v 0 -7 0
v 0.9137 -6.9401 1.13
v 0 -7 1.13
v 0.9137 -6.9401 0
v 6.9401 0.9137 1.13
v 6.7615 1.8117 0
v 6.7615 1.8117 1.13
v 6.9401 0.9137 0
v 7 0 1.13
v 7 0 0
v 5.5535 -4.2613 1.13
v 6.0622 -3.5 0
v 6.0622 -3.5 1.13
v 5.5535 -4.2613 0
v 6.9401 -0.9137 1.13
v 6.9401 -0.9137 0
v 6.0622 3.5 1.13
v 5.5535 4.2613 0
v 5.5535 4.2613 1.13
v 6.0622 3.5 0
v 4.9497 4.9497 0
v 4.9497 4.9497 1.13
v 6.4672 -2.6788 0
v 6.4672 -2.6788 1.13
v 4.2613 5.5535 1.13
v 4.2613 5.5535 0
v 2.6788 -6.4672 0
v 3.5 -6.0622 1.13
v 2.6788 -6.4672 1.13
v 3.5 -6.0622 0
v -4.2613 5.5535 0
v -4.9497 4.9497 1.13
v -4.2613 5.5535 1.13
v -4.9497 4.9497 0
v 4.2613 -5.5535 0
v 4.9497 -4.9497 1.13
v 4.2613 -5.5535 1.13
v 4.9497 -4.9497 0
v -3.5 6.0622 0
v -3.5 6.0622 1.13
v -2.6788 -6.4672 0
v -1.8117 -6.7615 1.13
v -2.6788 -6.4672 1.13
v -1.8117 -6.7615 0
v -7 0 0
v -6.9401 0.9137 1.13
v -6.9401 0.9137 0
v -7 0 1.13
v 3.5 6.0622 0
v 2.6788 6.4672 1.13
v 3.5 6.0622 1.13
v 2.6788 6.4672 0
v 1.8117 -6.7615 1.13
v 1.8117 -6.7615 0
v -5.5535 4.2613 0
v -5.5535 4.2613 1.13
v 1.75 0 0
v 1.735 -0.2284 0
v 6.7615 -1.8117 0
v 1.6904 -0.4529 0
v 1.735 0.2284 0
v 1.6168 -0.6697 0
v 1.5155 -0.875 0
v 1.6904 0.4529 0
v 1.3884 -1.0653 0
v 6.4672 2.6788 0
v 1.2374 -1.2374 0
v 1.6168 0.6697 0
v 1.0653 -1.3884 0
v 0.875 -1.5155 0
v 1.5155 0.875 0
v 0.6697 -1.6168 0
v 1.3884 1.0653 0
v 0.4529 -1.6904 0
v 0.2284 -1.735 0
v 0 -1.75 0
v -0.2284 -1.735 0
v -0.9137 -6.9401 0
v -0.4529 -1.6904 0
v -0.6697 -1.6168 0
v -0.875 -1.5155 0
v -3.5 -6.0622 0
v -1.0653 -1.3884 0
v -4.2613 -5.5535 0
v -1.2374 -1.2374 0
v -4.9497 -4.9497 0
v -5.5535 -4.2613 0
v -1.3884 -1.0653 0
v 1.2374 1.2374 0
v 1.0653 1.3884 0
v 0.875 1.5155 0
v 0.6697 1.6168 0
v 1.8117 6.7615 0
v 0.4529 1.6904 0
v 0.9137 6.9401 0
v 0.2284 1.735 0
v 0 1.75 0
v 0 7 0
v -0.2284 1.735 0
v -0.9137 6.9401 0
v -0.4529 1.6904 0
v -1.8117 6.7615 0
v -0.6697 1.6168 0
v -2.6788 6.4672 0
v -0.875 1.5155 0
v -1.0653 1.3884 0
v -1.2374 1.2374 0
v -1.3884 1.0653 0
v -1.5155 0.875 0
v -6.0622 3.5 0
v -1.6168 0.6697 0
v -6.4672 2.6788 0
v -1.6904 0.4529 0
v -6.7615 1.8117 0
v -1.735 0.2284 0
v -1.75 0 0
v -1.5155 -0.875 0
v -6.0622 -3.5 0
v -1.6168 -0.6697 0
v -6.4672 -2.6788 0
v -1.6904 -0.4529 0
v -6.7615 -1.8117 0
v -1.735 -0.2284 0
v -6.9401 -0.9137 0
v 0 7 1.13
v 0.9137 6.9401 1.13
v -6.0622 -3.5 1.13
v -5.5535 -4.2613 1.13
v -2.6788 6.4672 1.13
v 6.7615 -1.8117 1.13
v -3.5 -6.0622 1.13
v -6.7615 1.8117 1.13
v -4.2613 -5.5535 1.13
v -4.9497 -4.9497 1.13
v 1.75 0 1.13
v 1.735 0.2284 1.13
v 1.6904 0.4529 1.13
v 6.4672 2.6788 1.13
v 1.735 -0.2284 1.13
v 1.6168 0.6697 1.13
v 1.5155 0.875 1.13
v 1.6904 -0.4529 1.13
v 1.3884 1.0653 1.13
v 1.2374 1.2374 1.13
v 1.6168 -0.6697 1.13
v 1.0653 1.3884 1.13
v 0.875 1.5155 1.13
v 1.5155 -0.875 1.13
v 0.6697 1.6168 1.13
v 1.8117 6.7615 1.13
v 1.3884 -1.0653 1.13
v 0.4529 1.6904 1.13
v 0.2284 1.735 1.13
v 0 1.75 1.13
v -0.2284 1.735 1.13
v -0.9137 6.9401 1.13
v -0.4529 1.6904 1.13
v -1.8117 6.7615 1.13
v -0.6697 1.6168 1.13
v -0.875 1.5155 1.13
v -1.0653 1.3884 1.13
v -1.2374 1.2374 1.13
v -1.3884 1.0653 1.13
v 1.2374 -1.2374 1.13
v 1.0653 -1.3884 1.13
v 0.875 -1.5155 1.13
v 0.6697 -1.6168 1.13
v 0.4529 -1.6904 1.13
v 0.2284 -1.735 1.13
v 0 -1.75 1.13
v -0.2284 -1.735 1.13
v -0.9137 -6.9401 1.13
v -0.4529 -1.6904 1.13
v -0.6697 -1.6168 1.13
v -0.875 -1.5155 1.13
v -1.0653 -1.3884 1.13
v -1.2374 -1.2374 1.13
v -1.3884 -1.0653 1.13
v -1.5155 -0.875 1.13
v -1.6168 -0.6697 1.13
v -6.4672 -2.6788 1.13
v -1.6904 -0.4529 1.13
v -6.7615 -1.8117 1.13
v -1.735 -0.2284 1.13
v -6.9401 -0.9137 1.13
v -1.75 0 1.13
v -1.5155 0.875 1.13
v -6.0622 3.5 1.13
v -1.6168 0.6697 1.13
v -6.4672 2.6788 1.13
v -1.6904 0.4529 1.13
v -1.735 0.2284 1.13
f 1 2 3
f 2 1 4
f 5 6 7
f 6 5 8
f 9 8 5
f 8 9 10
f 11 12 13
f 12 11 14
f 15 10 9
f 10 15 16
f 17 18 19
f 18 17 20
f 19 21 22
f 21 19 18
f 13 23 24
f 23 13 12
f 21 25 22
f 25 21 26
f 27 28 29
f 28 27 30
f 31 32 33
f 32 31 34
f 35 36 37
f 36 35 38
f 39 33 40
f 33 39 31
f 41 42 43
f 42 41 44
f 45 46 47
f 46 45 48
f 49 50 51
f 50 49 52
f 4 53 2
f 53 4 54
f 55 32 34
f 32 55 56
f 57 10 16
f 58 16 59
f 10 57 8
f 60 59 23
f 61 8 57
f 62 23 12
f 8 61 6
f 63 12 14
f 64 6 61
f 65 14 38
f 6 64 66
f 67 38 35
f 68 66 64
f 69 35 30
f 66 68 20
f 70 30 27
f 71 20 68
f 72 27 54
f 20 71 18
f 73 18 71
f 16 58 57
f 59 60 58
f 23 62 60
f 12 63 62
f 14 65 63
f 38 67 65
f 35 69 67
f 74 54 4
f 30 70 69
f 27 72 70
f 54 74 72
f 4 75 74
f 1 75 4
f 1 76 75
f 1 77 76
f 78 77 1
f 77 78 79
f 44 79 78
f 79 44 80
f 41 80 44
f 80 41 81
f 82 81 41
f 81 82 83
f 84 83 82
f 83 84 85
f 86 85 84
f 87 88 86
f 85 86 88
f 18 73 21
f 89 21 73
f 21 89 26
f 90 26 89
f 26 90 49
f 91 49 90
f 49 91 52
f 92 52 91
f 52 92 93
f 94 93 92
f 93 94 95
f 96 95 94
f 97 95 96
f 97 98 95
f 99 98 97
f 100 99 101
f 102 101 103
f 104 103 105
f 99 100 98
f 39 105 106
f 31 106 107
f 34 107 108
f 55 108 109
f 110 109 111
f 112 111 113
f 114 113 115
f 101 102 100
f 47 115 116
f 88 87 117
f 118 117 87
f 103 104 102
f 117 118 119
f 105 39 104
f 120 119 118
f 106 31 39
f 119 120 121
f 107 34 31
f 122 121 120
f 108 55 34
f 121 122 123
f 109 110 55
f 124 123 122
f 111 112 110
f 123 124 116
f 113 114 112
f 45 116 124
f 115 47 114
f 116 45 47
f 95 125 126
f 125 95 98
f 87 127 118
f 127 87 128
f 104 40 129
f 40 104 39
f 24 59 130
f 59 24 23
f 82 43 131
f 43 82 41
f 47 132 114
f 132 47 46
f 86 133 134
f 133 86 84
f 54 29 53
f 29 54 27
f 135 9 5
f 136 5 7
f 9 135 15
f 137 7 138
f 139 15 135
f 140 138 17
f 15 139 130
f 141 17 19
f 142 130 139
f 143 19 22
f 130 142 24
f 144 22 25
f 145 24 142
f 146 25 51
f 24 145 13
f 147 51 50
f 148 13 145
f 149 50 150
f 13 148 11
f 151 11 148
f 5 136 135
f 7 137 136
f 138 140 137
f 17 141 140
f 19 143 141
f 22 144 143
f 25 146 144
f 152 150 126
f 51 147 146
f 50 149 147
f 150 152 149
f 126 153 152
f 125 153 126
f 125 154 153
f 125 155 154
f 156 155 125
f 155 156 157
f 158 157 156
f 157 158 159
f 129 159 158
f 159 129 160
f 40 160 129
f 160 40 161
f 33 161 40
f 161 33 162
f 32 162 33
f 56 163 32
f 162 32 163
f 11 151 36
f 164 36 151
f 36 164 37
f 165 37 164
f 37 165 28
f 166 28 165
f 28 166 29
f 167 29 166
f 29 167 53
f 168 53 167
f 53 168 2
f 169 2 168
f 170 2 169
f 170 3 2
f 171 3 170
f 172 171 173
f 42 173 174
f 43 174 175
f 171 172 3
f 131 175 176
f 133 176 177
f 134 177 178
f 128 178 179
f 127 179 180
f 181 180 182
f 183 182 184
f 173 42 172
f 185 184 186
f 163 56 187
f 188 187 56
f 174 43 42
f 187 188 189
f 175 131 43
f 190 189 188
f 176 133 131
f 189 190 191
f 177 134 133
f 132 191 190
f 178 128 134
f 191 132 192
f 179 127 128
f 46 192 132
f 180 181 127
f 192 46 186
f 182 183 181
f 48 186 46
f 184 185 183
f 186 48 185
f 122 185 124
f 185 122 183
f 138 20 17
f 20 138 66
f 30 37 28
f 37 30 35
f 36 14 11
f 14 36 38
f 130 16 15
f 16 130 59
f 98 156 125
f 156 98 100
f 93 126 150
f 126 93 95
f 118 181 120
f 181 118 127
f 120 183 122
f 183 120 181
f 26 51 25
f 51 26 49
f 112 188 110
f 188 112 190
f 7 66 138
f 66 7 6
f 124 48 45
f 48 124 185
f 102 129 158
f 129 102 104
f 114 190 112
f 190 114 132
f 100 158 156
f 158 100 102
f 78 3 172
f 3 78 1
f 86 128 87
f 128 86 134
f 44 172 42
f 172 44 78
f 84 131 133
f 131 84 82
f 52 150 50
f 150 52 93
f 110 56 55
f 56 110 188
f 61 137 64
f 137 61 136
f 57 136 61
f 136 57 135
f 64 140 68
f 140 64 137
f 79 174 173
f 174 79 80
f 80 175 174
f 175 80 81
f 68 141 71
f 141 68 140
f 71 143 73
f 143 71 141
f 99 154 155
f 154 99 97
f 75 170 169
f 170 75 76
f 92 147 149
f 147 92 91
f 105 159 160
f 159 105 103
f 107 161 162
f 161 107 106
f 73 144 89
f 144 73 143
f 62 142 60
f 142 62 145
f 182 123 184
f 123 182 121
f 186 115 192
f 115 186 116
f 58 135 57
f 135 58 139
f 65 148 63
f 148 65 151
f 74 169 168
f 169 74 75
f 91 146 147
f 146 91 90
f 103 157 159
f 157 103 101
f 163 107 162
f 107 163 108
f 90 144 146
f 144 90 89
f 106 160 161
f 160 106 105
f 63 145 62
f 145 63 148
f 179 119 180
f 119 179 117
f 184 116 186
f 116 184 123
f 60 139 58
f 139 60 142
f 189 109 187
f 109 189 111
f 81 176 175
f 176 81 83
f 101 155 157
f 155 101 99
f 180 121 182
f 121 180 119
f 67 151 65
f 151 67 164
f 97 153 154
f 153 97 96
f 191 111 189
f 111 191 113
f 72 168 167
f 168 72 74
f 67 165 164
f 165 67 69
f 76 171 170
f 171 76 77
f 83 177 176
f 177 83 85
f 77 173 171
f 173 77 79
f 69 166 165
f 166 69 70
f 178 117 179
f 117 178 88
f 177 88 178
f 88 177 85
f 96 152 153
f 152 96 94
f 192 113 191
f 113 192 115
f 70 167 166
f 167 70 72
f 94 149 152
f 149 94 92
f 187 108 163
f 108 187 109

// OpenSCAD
// file: parameters.scad
// =============================================================================
// Gen-AH Dual-rotor copper-centroid hypermicro AFPM — WOUND-AWARE (HARD GATE)
// PRIMARY challenger vs Gen-AE. Magnets @ R=41 over copper centroid + 180 t + m2m 4.96.
// =============================================================================

// --- Wire / wind budget (26 AWG, ~1 lb spool ≈ 390 m bare-equiv) --------------
wire_awg            = 26;
wire_od             = 0.45;     // insulated OD mm
turns               = 180;      // +10 vs Gen-AE 170
fill                = 0.70;
layers_per_face     = 2;        // axial layers proud of EACH flange
wind_build_axial    = layers_per_face * wire_od * fill;   // 0.63 mm
wind_build_radial   = 3 * wire_od * fill;                 // 0.945 mm

// --- Pancake former (bare STL) -----------------------------------------------
coil_id_r           = 16.5;     // copper-centroid window vs AE 18.5–64
coil_od_r           = 66.0;
span_deg            = 26.0;     // 12 stations × 30° pitch
former_web          = 1.50;
flange_t            = 0.60;
wall                = 1.2;
slot_w              = 2.4;
mount_hole          = 3.5;
tab_len             = 7.0;

former_bare_h       = former_web + 2 * flange_t;            // 2.70 mm
coil_envelope_h     = former_bare_h + 2 * wind_build_axial; // 3.96 mm

// --- Running clearance (magnet face → WOUND face) EACH side ------------------
run_clear           = 0.50;     // PASS floor ≥ 0.5
gap_spacer_h        = run_clear + wind_build_axial;         // 1.13 mm
m2m                 = coil_envelope_h + 2 * run_clear;      // 4.96 mm (beats Gen-AE 5.00)

// --- Mid stator (12 pancakes 3φ; winds proud both faces) ---------------------
coil_stations       = 12;
bay_r_in            = coil_id_r - 2.0 - wind_build_radial;
bay_r_out           = coil_od_r + 2.0 + wind_build_radial;
bay_span            = span_deg + 4.0;
bay_offset          = 2.0;
stator_thick        = former_bare_h;                        // winds proud ±Z
stator_od           = 160.0;
shaft_clear_stator  = 34.0;
coil_mount_r        = 26.0;

// --- Rotors (×2) — 8×Ø20 @ R=41 (copper centroid) + 24×Ø5 Halbach ------------
large_pocket_d      = 20.3;
small_pocket_d      = 5.3;
pocket_h            = 5.2;
large_n             = 8;
R_large             = 41.0;     // covers ~31–51 over copper centroid ~41
R_small_inner       = 26.0;
R_small_mid         = 41.0;
R_small_outer       = 58.0;
carrier_od          = 156.0;
carrier_thick       = 7.5;
hub_h               = 10.0;
hub_od              = 30.0;
rotor_b_offset_deg  = 22.5;

// --- Modular MAX interface (Gen-E family) ------------------------------------
shaft_bore          = 8.35;
bearing_d           = 21.85;
bearing_h           = 7.2;
m3_clear            = 3.5;
bolt_r_inner        = 36.0;
bolt_n_inner        = 6;
flange_bolt_r       = 72.0;
flange_bolt_n       = 6;
brace_r             = 68.0;
brace_d             = 4.3;
brace_n             = 4;

spacer_pad_od       = 14.0;
spacer_pad_id       = m3_clear;
endbell_od          = 160.0;
endbell_thick       = 8.0;
endbell_shaft_clear = 10.0;

$fn = 64;
// main file
// Gen-AH gap spacer — h = run_clear + wind_build_axial
include <parameters.scad>;
$fn = 48;
difference() {
    cylinder(d=spacer_pad_od, h=gap_spacer_h);
    translate([0, 0, -0.1]) cylinder(d=spacer_pad_id, h=gap_spacer_h + 0.2);
}
